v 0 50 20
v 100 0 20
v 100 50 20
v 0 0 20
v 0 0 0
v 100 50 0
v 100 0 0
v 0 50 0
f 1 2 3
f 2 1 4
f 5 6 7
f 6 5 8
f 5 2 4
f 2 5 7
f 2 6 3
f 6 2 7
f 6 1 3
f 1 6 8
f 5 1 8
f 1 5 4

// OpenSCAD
module box_no_lid(width, depth, height) {
  cube([width, depth, height]);
}

box_no_lid(100, 50, 20);
